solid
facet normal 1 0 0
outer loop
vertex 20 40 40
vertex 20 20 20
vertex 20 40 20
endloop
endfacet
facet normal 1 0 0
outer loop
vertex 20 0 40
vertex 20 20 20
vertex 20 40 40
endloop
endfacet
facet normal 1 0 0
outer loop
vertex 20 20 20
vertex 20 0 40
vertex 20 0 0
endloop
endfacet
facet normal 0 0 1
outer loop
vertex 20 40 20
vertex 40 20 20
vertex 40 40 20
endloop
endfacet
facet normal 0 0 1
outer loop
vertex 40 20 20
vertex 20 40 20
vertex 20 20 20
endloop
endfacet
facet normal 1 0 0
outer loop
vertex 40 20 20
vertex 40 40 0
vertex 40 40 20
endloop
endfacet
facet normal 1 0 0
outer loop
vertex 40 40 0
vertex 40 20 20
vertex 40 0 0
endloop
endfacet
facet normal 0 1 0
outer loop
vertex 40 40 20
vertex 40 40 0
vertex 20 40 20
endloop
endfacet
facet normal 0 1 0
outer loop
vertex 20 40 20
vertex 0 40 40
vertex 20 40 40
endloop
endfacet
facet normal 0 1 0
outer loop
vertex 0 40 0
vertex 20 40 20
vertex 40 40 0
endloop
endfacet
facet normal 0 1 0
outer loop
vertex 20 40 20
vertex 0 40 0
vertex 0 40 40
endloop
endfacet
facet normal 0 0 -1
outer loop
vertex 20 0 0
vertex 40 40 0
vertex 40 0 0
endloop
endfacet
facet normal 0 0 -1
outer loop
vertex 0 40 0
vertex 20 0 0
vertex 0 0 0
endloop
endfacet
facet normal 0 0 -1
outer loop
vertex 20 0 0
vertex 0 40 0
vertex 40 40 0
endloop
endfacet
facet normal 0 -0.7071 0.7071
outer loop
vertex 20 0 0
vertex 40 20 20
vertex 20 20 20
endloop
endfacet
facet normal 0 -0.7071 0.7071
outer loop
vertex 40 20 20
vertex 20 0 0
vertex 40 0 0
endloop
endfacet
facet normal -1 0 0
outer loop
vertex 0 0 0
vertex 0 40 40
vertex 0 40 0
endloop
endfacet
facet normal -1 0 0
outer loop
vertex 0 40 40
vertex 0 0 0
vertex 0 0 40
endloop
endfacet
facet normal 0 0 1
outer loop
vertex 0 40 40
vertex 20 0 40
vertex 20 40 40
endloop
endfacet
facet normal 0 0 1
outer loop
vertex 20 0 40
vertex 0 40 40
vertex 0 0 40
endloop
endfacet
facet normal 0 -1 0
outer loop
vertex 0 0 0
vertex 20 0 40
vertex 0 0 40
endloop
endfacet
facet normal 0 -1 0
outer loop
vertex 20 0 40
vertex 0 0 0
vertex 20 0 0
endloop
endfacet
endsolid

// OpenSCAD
cube([20,40,40]);
difference(){
translate([20,0,0])
cube([20,40,20]);
rotate([45,0,0])
translate([20,0,0])
cube([22,40,20]);
}
